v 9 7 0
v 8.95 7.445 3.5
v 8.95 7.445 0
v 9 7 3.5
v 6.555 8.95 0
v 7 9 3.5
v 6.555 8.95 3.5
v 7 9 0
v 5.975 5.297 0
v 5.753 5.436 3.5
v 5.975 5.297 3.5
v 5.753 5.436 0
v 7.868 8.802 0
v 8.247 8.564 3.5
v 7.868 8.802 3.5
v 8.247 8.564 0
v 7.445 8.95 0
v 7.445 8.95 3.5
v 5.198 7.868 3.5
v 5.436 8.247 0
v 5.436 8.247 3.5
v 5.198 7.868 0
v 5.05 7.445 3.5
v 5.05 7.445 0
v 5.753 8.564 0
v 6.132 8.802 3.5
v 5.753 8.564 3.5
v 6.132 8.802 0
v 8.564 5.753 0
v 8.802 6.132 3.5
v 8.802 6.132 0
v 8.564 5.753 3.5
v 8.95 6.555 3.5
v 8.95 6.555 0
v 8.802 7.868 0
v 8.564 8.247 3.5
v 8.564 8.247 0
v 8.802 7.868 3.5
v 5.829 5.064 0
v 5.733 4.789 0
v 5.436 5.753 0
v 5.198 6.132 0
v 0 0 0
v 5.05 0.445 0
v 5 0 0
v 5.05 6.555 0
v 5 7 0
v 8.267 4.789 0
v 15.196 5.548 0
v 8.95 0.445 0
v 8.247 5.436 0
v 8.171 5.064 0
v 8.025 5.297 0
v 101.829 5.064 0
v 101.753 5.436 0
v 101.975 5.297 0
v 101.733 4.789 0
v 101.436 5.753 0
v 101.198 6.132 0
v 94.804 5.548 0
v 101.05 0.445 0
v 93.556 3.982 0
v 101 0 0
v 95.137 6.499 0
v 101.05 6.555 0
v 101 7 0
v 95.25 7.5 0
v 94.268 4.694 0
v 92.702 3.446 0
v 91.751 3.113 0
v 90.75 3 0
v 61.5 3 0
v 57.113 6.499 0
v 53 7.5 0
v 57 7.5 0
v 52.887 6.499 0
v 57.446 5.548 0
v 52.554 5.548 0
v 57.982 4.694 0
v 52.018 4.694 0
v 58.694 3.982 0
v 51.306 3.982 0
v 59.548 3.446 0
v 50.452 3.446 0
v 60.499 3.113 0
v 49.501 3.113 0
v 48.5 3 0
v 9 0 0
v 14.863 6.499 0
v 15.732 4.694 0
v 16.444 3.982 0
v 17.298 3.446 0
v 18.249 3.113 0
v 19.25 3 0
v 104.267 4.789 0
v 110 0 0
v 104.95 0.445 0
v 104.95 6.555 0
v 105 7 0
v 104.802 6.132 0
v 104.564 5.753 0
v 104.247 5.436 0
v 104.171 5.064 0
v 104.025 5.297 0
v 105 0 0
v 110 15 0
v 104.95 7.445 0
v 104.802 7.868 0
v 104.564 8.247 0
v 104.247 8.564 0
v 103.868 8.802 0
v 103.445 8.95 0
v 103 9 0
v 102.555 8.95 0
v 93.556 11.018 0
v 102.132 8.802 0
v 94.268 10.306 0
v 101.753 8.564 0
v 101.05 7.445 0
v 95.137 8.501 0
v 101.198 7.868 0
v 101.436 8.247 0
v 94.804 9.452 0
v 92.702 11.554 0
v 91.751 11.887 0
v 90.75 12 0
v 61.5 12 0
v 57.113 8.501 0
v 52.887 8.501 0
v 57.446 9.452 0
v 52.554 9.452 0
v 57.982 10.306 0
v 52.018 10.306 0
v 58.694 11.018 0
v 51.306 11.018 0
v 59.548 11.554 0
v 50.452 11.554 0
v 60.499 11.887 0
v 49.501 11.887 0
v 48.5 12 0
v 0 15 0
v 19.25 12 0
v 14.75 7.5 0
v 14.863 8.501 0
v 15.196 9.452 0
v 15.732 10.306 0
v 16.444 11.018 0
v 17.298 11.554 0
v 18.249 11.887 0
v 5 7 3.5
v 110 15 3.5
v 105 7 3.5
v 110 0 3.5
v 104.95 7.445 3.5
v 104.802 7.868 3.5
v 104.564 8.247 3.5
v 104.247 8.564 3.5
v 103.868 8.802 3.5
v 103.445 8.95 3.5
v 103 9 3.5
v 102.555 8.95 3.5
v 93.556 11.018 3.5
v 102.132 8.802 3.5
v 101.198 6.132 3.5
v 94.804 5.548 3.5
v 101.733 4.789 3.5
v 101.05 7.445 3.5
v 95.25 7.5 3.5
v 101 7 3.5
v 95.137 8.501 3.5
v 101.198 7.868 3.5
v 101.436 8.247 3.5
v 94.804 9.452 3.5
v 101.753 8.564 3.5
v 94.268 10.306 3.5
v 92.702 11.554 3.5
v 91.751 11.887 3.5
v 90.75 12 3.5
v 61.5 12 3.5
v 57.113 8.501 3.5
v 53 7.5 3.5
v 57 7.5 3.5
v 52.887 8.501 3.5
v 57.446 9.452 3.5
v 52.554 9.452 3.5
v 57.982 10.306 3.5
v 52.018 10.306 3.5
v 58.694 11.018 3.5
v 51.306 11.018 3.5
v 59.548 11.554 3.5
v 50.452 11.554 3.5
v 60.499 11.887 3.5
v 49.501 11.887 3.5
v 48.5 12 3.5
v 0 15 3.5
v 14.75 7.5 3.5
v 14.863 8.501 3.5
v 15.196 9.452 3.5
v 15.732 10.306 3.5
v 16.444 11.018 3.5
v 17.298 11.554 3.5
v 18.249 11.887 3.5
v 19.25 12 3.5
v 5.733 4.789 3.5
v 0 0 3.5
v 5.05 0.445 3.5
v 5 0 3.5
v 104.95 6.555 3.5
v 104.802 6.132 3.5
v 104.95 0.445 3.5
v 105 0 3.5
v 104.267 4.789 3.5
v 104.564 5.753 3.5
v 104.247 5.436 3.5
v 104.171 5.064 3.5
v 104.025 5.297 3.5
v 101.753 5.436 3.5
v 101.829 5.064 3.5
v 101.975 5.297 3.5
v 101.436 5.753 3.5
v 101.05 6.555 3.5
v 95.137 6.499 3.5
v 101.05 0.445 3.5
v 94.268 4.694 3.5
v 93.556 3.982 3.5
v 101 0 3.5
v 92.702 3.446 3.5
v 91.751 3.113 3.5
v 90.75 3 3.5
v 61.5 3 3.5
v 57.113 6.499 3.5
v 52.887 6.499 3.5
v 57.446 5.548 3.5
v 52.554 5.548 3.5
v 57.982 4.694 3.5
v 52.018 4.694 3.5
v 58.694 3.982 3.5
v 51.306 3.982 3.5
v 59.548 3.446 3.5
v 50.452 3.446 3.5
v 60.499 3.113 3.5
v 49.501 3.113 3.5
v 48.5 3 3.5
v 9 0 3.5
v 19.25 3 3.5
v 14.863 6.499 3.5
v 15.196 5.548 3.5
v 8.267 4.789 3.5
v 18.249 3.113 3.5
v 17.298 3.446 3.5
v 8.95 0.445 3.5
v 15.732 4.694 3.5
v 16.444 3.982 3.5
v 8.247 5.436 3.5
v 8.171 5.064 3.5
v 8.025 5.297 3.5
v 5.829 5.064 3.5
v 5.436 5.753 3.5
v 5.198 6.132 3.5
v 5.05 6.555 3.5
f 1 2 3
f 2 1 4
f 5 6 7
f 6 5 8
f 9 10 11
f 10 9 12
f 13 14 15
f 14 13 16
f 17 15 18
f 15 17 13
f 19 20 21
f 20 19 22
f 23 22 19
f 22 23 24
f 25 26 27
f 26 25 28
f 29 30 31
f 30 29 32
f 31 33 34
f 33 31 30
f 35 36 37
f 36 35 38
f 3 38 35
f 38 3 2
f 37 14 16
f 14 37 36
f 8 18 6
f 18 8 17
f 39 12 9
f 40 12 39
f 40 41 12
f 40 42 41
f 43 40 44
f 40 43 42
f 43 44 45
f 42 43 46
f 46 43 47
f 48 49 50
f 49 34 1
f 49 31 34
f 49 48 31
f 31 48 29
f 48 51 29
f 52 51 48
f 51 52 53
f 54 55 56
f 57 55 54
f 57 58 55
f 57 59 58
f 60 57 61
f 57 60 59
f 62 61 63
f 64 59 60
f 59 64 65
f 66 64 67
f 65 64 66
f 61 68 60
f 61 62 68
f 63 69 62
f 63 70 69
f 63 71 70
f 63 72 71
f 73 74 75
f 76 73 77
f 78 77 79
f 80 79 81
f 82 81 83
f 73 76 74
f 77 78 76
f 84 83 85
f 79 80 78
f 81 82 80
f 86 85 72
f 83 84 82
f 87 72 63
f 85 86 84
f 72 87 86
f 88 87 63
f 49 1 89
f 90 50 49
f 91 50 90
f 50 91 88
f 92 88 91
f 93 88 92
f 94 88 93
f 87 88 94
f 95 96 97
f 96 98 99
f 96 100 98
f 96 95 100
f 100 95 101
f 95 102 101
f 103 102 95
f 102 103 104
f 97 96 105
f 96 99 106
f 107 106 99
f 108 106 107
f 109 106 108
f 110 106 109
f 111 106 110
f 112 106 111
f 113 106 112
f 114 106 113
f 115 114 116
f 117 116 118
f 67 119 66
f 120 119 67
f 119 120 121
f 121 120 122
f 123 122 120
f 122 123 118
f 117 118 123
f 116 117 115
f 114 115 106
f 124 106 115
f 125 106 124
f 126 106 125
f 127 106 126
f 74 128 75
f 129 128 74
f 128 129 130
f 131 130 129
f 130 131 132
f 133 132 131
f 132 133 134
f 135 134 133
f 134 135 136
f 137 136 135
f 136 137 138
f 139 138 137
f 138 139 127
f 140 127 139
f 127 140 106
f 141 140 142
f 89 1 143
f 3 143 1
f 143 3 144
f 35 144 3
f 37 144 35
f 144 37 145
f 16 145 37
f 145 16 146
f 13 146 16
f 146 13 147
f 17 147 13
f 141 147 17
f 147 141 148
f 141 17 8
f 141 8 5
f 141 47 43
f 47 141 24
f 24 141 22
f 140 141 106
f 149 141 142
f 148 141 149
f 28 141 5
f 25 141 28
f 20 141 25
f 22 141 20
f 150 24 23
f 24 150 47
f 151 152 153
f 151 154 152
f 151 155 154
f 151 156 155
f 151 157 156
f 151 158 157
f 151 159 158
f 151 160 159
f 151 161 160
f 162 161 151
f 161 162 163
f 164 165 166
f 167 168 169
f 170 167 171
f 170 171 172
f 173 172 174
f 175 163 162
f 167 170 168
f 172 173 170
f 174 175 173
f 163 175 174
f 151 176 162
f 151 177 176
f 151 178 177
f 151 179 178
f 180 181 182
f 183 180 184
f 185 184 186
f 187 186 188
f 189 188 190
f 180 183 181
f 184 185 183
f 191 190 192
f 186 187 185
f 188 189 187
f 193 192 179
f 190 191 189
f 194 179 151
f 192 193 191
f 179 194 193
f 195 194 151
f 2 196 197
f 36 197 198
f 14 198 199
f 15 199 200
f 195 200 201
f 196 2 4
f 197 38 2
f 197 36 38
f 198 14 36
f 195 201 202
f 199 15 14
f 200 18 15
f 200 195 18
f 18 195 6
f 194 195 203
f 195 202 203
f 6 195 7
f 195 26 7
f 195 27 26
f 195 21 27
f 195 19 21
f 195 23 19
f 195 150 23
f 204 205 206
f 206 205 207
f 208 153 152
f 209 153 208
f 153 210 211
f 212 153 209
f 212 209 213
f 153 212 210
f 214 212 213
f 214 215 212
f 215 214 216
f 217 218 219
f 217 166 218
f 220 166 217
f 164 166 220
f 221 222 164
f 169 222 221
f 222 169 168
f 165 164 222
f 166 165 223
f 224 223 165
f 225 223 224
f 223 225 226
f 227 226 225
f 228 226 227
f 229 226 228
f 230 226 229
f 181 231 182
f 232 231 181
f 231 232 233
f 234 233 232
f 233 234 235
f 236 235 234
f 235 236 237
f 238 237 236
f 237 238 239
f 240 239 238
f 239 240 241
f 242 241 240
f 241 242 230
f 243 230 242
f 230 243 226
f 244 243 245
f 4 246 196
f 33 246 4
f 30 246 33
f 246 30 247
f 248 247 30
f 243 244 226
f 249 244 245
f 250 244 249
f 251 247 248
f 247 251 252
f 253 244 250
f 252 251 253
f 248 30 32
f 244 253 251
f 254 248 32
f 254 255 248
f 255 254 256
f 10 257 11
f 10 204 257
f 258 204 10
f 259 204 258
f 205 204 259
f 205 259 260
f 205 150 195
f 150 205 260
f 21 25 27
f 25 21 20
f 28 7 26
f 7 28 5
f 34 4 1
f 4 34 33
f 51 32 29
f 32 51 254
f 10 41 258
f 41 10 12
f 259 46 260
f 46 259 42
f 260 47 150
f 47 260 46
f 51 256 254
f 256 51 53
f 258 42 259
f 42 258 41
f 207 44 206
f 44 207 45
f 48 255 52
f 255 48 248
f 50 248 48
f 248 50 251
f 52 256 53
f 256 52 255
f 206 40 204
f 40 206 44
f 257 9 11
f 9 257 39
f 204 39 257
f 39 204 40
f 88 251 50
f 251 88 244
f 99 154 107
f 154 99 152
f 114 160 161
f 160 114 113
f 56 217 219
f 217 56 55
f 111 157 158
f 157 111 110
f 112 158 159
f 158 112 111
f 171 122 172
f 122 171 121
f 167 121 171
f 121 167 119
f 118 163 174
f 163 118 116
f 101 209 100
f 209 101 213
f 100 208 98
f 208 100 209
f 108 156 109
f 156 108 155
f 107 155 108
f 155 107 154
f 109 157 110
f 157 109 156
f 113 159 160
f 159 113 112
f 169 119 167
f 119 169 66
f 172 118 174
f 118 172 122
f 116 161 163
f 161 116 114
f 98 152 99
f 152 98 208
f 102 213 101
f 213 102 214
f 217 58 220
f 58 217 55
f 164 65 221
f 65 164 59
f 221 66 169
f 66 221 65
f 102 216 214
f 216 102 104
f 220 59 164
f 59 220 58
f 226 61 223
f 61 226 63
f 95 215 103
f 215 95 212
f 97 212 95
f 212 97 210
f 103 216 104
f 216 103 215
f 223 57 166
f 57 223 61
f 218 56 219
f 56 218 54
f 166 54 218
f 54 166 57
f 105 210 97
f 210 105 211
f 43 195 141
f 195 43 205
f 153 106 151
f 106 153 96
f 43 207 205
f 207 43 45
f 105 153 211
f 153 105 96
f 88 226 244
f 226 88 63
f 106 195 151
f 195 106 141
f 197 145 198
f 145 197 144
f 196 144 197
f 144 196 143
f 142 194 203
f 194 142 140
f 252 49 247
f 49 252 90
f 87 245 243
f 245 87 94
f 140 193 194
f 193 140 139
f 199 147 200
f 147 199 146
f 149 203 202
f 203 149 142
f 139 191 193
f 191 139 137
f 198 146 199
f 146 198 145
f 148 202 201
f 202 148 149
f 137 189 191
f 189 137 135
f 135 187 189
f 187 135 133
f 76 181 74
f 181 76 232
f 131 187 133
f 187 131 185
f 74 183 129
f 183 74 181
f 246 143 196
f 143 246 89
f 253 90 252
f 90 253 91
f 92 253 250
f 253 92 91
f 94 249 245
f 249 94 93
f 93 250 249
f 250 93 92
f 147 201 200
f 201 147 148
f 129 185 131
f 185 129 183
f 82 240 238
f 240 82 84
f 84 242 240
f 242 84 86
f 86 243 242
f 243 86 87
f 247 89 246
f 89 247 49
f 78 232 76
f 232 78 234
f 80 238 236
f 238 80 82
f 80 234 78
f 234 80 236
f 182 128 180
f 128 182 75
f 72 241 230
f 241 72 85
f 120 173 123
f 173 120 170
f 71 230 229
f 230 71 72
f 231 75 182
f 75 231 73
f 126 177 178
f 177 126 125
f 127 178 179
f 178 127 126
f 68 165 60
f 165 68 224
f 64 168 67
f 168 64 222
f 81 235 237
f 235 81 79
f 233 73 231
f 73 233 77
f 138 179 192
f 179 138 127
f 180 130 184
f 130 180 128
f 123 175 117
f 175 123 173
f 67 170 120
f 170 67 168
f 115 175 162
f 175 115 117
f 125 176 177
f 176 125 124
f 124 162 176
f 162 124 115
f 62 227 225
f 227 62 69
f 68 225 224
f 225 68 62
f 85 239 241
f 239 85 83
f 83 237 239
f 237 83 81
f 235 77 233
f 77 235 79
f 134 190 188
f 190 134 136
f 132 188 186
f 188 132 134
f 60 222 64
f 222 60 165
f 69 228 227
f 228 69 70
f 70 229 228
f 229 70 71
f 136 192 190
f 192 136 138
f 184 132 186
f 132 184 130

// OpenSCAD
$fn=14*2;

h=0.35*10;
d1=4;
d2=2.6;

difference()
{
    cube([110,15,h]);

    translate([d1/2+5,0,0])
    hole(d1, d2);
    translate([110-5-d1/2,0,0])
    hole(d1, d2);
    hull()
    {
        translate([1.25*13+3,15/2,0])
        #cylinder(d=9,h=h);
        translate([3.5*13+3,15/2,0])
        #cylinder(d=9,h=h);
    }
    hull()
    {
        translate([4.5*13+3,15/2,0])
        #cylinder(d=9,h=h);
        translate([6.75*13+3,15/2,0])
        #cylinder(d=9,h=h);
    }
}

module hole(d1=4,d2=3,s=0)
{
    translate([0,7-s,0])
    #cylinder(d=d1,h=h);
     
    translate([0,0,0])
    #hull()
    {
        translate([0,0,0])
        cylinder(d=4,h=h);
        translate([0,4.5,0])
        cylinder(d=d2,h=h);
    }
}


//difference()
//{
//    cube([25,15,h]);
//
//    translate([8*1/2,0,0])
//    hole(4, 3);
//    translate([8*3/2,0,0])
//    hole(4, 2.5);
//}
